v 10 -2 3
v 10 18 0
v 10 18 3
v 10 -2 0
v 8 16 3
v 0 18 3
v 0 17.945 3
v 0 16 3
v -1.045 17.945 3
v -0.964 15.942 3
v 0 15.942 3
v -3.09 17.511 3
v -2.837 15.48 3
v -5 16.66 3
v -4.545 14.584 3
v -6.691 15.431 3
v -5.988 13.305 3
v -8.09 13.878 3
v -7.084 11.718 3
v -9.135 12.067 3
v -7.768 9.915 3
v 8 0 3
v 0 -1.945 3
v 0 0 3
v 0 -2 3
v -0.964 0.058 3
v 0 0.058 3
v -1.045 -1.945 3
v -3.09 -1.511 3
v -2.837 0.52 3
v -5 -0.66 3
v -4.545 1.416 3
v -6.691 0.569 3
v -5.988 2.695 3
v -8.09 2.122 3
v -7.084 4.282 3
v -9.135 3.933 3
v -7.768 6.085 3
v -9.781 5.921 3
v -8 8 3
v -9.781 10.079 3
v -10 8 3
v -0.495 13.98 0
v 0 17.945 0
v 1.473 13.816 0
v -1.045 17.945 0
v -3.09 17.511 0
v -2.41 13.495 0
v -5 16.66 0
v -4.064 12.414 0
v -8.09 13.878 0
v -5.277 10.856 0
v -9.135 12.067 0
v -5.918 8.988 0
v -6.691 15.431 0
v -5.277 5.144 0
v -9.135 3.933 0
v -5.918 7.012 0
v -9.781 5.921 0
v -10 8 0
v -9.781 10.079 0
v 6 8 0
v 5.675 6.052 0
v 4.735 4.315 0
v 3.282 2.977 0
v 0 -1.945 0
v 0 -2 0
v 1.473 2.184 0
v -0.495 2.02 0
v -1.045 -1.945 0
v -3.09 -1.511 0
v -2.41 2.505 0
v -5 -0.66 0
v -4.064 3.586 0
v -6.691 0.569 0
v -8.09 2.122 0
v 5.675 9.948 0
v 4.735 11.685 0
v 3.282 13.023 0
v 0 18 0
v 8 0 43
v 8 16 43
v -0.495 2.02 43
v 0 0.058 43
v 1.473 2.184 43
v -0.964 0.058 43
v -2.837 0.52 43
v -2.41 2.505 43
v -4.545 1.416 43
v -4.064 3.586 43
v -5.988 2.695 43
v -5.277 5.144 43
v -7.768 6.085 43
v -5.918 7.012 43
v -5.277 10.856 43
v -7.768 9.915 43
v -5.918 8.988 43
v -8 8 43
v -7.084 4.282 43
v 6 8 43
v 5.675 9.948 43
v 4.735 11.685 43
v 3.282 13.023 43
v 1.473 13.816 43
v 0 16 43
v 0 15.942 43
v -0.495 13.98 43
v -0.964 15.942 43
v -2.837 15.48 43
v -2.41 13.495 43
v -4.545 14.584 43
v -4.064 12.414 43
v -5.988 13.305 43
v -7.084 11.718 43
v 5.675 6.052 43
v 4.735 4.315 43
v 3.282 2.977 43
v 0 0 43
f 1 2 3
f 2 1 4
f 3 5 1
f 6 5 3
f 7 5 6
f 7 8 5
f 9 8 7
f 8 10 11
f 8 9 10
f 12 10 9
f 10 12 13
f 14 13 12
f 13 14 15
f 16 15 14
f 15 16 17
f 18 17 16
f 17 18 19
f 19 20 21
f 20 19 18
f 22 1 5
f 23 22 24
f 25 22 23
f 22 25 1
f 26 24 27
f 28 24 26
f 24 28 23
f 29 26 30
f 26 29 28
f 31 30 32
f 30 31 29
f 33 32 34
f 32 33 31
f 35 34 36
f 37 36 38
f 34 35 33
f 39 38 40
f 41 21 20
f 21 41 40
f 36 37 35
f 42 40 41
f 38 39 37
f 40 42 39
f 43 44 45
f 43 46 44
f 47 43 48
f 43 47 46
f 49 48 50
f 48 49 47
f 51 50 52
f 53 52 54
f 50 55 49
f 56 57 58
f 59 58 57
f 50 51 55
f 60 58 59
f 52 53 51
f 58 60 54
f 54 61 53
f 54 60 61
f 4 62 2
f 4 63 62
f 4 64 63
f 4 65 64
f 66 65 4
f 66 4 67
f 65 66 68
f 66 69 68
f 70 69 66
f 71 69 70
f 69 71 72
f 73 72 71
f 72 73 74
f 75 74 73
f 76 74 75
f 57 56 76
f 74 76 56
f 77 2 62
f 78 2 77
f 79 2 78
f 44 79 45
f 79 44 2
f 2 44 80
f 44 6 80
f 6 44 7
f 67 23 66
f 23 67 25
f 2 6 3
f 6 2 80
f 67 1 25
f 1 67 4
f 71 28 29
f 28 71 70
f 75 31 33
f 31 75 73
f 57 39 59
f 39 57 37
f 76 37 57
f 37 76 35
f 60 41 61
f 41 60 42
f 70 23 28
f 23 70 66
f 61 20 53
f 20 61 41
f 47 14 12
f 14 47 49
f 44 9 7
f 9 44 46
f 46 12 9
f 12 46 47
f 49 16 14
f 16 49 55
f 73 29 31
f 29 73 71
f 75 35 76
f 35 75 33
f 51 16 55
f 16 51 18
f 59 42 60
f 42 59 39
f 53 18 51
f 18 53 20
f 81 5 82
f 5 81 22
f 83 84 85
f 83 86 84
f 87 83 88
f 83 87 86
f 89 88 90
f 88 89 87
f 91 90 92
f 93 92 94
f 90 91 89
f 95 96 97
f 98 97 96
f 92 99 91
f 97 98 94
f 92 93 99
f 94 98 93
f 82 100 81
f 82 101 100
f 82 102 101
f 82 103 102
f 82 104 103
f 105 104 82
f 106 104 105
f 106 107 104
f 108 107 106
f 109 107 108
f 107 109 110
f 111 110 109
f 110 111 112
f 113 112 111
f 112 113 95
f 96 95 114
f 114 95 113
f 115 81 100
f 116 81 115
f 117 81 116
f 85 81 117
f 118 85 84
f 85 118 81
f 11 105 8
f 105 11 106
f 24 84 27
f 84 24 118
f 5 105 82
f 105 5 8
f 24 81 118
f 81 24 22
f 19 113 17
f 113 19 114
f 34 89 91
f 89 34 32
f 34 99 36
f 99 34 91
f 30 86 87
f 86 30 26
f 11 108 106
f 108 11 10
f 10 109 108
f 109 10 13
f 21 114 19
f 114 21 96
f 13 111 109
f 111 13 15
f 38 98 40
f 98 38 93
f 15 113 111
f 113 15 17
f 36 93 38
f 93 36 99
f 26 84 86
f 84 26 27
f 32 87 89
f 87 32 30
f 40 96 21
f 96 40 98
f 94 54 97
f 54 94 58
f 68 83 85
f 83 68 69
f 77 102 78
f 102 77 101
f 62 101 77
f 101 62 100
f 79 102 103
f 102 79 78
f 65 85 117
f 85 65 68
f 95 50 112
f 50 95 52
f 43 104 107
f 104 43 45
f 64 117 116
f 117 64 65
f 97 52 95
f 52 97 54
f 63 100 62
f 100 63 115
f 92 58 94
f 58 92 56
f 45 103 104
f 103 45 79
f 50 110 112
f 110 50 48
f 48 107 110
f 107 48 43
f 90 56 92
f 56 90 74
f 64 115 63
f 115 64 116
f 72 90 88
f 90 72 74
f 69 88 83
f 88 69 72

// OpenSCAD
//translate([0, 0, 0])
//cube([8, 16, 40]);

//translate([0, 8, 0])
//cylinder(h=40, r1=8, r2=8);

difference() {
    union() {
        union() {
            
            translate([0, -2, 0])
            cube([10, 20, 3]);

            translate([0, 8, 0])
            cylinder(h=3, r1=10, r2=10);
        }
        union() {
            
            translate([0, 0, 3])
            cube([8, 16, 40]);

            translate([0, 8, 3])
            cylinder(h=40, r1=8, r2=8);
        }
    }
    
    
    translate([0, 8, -10])
    cylinder(h=60, r1=6, r2=6);
}
